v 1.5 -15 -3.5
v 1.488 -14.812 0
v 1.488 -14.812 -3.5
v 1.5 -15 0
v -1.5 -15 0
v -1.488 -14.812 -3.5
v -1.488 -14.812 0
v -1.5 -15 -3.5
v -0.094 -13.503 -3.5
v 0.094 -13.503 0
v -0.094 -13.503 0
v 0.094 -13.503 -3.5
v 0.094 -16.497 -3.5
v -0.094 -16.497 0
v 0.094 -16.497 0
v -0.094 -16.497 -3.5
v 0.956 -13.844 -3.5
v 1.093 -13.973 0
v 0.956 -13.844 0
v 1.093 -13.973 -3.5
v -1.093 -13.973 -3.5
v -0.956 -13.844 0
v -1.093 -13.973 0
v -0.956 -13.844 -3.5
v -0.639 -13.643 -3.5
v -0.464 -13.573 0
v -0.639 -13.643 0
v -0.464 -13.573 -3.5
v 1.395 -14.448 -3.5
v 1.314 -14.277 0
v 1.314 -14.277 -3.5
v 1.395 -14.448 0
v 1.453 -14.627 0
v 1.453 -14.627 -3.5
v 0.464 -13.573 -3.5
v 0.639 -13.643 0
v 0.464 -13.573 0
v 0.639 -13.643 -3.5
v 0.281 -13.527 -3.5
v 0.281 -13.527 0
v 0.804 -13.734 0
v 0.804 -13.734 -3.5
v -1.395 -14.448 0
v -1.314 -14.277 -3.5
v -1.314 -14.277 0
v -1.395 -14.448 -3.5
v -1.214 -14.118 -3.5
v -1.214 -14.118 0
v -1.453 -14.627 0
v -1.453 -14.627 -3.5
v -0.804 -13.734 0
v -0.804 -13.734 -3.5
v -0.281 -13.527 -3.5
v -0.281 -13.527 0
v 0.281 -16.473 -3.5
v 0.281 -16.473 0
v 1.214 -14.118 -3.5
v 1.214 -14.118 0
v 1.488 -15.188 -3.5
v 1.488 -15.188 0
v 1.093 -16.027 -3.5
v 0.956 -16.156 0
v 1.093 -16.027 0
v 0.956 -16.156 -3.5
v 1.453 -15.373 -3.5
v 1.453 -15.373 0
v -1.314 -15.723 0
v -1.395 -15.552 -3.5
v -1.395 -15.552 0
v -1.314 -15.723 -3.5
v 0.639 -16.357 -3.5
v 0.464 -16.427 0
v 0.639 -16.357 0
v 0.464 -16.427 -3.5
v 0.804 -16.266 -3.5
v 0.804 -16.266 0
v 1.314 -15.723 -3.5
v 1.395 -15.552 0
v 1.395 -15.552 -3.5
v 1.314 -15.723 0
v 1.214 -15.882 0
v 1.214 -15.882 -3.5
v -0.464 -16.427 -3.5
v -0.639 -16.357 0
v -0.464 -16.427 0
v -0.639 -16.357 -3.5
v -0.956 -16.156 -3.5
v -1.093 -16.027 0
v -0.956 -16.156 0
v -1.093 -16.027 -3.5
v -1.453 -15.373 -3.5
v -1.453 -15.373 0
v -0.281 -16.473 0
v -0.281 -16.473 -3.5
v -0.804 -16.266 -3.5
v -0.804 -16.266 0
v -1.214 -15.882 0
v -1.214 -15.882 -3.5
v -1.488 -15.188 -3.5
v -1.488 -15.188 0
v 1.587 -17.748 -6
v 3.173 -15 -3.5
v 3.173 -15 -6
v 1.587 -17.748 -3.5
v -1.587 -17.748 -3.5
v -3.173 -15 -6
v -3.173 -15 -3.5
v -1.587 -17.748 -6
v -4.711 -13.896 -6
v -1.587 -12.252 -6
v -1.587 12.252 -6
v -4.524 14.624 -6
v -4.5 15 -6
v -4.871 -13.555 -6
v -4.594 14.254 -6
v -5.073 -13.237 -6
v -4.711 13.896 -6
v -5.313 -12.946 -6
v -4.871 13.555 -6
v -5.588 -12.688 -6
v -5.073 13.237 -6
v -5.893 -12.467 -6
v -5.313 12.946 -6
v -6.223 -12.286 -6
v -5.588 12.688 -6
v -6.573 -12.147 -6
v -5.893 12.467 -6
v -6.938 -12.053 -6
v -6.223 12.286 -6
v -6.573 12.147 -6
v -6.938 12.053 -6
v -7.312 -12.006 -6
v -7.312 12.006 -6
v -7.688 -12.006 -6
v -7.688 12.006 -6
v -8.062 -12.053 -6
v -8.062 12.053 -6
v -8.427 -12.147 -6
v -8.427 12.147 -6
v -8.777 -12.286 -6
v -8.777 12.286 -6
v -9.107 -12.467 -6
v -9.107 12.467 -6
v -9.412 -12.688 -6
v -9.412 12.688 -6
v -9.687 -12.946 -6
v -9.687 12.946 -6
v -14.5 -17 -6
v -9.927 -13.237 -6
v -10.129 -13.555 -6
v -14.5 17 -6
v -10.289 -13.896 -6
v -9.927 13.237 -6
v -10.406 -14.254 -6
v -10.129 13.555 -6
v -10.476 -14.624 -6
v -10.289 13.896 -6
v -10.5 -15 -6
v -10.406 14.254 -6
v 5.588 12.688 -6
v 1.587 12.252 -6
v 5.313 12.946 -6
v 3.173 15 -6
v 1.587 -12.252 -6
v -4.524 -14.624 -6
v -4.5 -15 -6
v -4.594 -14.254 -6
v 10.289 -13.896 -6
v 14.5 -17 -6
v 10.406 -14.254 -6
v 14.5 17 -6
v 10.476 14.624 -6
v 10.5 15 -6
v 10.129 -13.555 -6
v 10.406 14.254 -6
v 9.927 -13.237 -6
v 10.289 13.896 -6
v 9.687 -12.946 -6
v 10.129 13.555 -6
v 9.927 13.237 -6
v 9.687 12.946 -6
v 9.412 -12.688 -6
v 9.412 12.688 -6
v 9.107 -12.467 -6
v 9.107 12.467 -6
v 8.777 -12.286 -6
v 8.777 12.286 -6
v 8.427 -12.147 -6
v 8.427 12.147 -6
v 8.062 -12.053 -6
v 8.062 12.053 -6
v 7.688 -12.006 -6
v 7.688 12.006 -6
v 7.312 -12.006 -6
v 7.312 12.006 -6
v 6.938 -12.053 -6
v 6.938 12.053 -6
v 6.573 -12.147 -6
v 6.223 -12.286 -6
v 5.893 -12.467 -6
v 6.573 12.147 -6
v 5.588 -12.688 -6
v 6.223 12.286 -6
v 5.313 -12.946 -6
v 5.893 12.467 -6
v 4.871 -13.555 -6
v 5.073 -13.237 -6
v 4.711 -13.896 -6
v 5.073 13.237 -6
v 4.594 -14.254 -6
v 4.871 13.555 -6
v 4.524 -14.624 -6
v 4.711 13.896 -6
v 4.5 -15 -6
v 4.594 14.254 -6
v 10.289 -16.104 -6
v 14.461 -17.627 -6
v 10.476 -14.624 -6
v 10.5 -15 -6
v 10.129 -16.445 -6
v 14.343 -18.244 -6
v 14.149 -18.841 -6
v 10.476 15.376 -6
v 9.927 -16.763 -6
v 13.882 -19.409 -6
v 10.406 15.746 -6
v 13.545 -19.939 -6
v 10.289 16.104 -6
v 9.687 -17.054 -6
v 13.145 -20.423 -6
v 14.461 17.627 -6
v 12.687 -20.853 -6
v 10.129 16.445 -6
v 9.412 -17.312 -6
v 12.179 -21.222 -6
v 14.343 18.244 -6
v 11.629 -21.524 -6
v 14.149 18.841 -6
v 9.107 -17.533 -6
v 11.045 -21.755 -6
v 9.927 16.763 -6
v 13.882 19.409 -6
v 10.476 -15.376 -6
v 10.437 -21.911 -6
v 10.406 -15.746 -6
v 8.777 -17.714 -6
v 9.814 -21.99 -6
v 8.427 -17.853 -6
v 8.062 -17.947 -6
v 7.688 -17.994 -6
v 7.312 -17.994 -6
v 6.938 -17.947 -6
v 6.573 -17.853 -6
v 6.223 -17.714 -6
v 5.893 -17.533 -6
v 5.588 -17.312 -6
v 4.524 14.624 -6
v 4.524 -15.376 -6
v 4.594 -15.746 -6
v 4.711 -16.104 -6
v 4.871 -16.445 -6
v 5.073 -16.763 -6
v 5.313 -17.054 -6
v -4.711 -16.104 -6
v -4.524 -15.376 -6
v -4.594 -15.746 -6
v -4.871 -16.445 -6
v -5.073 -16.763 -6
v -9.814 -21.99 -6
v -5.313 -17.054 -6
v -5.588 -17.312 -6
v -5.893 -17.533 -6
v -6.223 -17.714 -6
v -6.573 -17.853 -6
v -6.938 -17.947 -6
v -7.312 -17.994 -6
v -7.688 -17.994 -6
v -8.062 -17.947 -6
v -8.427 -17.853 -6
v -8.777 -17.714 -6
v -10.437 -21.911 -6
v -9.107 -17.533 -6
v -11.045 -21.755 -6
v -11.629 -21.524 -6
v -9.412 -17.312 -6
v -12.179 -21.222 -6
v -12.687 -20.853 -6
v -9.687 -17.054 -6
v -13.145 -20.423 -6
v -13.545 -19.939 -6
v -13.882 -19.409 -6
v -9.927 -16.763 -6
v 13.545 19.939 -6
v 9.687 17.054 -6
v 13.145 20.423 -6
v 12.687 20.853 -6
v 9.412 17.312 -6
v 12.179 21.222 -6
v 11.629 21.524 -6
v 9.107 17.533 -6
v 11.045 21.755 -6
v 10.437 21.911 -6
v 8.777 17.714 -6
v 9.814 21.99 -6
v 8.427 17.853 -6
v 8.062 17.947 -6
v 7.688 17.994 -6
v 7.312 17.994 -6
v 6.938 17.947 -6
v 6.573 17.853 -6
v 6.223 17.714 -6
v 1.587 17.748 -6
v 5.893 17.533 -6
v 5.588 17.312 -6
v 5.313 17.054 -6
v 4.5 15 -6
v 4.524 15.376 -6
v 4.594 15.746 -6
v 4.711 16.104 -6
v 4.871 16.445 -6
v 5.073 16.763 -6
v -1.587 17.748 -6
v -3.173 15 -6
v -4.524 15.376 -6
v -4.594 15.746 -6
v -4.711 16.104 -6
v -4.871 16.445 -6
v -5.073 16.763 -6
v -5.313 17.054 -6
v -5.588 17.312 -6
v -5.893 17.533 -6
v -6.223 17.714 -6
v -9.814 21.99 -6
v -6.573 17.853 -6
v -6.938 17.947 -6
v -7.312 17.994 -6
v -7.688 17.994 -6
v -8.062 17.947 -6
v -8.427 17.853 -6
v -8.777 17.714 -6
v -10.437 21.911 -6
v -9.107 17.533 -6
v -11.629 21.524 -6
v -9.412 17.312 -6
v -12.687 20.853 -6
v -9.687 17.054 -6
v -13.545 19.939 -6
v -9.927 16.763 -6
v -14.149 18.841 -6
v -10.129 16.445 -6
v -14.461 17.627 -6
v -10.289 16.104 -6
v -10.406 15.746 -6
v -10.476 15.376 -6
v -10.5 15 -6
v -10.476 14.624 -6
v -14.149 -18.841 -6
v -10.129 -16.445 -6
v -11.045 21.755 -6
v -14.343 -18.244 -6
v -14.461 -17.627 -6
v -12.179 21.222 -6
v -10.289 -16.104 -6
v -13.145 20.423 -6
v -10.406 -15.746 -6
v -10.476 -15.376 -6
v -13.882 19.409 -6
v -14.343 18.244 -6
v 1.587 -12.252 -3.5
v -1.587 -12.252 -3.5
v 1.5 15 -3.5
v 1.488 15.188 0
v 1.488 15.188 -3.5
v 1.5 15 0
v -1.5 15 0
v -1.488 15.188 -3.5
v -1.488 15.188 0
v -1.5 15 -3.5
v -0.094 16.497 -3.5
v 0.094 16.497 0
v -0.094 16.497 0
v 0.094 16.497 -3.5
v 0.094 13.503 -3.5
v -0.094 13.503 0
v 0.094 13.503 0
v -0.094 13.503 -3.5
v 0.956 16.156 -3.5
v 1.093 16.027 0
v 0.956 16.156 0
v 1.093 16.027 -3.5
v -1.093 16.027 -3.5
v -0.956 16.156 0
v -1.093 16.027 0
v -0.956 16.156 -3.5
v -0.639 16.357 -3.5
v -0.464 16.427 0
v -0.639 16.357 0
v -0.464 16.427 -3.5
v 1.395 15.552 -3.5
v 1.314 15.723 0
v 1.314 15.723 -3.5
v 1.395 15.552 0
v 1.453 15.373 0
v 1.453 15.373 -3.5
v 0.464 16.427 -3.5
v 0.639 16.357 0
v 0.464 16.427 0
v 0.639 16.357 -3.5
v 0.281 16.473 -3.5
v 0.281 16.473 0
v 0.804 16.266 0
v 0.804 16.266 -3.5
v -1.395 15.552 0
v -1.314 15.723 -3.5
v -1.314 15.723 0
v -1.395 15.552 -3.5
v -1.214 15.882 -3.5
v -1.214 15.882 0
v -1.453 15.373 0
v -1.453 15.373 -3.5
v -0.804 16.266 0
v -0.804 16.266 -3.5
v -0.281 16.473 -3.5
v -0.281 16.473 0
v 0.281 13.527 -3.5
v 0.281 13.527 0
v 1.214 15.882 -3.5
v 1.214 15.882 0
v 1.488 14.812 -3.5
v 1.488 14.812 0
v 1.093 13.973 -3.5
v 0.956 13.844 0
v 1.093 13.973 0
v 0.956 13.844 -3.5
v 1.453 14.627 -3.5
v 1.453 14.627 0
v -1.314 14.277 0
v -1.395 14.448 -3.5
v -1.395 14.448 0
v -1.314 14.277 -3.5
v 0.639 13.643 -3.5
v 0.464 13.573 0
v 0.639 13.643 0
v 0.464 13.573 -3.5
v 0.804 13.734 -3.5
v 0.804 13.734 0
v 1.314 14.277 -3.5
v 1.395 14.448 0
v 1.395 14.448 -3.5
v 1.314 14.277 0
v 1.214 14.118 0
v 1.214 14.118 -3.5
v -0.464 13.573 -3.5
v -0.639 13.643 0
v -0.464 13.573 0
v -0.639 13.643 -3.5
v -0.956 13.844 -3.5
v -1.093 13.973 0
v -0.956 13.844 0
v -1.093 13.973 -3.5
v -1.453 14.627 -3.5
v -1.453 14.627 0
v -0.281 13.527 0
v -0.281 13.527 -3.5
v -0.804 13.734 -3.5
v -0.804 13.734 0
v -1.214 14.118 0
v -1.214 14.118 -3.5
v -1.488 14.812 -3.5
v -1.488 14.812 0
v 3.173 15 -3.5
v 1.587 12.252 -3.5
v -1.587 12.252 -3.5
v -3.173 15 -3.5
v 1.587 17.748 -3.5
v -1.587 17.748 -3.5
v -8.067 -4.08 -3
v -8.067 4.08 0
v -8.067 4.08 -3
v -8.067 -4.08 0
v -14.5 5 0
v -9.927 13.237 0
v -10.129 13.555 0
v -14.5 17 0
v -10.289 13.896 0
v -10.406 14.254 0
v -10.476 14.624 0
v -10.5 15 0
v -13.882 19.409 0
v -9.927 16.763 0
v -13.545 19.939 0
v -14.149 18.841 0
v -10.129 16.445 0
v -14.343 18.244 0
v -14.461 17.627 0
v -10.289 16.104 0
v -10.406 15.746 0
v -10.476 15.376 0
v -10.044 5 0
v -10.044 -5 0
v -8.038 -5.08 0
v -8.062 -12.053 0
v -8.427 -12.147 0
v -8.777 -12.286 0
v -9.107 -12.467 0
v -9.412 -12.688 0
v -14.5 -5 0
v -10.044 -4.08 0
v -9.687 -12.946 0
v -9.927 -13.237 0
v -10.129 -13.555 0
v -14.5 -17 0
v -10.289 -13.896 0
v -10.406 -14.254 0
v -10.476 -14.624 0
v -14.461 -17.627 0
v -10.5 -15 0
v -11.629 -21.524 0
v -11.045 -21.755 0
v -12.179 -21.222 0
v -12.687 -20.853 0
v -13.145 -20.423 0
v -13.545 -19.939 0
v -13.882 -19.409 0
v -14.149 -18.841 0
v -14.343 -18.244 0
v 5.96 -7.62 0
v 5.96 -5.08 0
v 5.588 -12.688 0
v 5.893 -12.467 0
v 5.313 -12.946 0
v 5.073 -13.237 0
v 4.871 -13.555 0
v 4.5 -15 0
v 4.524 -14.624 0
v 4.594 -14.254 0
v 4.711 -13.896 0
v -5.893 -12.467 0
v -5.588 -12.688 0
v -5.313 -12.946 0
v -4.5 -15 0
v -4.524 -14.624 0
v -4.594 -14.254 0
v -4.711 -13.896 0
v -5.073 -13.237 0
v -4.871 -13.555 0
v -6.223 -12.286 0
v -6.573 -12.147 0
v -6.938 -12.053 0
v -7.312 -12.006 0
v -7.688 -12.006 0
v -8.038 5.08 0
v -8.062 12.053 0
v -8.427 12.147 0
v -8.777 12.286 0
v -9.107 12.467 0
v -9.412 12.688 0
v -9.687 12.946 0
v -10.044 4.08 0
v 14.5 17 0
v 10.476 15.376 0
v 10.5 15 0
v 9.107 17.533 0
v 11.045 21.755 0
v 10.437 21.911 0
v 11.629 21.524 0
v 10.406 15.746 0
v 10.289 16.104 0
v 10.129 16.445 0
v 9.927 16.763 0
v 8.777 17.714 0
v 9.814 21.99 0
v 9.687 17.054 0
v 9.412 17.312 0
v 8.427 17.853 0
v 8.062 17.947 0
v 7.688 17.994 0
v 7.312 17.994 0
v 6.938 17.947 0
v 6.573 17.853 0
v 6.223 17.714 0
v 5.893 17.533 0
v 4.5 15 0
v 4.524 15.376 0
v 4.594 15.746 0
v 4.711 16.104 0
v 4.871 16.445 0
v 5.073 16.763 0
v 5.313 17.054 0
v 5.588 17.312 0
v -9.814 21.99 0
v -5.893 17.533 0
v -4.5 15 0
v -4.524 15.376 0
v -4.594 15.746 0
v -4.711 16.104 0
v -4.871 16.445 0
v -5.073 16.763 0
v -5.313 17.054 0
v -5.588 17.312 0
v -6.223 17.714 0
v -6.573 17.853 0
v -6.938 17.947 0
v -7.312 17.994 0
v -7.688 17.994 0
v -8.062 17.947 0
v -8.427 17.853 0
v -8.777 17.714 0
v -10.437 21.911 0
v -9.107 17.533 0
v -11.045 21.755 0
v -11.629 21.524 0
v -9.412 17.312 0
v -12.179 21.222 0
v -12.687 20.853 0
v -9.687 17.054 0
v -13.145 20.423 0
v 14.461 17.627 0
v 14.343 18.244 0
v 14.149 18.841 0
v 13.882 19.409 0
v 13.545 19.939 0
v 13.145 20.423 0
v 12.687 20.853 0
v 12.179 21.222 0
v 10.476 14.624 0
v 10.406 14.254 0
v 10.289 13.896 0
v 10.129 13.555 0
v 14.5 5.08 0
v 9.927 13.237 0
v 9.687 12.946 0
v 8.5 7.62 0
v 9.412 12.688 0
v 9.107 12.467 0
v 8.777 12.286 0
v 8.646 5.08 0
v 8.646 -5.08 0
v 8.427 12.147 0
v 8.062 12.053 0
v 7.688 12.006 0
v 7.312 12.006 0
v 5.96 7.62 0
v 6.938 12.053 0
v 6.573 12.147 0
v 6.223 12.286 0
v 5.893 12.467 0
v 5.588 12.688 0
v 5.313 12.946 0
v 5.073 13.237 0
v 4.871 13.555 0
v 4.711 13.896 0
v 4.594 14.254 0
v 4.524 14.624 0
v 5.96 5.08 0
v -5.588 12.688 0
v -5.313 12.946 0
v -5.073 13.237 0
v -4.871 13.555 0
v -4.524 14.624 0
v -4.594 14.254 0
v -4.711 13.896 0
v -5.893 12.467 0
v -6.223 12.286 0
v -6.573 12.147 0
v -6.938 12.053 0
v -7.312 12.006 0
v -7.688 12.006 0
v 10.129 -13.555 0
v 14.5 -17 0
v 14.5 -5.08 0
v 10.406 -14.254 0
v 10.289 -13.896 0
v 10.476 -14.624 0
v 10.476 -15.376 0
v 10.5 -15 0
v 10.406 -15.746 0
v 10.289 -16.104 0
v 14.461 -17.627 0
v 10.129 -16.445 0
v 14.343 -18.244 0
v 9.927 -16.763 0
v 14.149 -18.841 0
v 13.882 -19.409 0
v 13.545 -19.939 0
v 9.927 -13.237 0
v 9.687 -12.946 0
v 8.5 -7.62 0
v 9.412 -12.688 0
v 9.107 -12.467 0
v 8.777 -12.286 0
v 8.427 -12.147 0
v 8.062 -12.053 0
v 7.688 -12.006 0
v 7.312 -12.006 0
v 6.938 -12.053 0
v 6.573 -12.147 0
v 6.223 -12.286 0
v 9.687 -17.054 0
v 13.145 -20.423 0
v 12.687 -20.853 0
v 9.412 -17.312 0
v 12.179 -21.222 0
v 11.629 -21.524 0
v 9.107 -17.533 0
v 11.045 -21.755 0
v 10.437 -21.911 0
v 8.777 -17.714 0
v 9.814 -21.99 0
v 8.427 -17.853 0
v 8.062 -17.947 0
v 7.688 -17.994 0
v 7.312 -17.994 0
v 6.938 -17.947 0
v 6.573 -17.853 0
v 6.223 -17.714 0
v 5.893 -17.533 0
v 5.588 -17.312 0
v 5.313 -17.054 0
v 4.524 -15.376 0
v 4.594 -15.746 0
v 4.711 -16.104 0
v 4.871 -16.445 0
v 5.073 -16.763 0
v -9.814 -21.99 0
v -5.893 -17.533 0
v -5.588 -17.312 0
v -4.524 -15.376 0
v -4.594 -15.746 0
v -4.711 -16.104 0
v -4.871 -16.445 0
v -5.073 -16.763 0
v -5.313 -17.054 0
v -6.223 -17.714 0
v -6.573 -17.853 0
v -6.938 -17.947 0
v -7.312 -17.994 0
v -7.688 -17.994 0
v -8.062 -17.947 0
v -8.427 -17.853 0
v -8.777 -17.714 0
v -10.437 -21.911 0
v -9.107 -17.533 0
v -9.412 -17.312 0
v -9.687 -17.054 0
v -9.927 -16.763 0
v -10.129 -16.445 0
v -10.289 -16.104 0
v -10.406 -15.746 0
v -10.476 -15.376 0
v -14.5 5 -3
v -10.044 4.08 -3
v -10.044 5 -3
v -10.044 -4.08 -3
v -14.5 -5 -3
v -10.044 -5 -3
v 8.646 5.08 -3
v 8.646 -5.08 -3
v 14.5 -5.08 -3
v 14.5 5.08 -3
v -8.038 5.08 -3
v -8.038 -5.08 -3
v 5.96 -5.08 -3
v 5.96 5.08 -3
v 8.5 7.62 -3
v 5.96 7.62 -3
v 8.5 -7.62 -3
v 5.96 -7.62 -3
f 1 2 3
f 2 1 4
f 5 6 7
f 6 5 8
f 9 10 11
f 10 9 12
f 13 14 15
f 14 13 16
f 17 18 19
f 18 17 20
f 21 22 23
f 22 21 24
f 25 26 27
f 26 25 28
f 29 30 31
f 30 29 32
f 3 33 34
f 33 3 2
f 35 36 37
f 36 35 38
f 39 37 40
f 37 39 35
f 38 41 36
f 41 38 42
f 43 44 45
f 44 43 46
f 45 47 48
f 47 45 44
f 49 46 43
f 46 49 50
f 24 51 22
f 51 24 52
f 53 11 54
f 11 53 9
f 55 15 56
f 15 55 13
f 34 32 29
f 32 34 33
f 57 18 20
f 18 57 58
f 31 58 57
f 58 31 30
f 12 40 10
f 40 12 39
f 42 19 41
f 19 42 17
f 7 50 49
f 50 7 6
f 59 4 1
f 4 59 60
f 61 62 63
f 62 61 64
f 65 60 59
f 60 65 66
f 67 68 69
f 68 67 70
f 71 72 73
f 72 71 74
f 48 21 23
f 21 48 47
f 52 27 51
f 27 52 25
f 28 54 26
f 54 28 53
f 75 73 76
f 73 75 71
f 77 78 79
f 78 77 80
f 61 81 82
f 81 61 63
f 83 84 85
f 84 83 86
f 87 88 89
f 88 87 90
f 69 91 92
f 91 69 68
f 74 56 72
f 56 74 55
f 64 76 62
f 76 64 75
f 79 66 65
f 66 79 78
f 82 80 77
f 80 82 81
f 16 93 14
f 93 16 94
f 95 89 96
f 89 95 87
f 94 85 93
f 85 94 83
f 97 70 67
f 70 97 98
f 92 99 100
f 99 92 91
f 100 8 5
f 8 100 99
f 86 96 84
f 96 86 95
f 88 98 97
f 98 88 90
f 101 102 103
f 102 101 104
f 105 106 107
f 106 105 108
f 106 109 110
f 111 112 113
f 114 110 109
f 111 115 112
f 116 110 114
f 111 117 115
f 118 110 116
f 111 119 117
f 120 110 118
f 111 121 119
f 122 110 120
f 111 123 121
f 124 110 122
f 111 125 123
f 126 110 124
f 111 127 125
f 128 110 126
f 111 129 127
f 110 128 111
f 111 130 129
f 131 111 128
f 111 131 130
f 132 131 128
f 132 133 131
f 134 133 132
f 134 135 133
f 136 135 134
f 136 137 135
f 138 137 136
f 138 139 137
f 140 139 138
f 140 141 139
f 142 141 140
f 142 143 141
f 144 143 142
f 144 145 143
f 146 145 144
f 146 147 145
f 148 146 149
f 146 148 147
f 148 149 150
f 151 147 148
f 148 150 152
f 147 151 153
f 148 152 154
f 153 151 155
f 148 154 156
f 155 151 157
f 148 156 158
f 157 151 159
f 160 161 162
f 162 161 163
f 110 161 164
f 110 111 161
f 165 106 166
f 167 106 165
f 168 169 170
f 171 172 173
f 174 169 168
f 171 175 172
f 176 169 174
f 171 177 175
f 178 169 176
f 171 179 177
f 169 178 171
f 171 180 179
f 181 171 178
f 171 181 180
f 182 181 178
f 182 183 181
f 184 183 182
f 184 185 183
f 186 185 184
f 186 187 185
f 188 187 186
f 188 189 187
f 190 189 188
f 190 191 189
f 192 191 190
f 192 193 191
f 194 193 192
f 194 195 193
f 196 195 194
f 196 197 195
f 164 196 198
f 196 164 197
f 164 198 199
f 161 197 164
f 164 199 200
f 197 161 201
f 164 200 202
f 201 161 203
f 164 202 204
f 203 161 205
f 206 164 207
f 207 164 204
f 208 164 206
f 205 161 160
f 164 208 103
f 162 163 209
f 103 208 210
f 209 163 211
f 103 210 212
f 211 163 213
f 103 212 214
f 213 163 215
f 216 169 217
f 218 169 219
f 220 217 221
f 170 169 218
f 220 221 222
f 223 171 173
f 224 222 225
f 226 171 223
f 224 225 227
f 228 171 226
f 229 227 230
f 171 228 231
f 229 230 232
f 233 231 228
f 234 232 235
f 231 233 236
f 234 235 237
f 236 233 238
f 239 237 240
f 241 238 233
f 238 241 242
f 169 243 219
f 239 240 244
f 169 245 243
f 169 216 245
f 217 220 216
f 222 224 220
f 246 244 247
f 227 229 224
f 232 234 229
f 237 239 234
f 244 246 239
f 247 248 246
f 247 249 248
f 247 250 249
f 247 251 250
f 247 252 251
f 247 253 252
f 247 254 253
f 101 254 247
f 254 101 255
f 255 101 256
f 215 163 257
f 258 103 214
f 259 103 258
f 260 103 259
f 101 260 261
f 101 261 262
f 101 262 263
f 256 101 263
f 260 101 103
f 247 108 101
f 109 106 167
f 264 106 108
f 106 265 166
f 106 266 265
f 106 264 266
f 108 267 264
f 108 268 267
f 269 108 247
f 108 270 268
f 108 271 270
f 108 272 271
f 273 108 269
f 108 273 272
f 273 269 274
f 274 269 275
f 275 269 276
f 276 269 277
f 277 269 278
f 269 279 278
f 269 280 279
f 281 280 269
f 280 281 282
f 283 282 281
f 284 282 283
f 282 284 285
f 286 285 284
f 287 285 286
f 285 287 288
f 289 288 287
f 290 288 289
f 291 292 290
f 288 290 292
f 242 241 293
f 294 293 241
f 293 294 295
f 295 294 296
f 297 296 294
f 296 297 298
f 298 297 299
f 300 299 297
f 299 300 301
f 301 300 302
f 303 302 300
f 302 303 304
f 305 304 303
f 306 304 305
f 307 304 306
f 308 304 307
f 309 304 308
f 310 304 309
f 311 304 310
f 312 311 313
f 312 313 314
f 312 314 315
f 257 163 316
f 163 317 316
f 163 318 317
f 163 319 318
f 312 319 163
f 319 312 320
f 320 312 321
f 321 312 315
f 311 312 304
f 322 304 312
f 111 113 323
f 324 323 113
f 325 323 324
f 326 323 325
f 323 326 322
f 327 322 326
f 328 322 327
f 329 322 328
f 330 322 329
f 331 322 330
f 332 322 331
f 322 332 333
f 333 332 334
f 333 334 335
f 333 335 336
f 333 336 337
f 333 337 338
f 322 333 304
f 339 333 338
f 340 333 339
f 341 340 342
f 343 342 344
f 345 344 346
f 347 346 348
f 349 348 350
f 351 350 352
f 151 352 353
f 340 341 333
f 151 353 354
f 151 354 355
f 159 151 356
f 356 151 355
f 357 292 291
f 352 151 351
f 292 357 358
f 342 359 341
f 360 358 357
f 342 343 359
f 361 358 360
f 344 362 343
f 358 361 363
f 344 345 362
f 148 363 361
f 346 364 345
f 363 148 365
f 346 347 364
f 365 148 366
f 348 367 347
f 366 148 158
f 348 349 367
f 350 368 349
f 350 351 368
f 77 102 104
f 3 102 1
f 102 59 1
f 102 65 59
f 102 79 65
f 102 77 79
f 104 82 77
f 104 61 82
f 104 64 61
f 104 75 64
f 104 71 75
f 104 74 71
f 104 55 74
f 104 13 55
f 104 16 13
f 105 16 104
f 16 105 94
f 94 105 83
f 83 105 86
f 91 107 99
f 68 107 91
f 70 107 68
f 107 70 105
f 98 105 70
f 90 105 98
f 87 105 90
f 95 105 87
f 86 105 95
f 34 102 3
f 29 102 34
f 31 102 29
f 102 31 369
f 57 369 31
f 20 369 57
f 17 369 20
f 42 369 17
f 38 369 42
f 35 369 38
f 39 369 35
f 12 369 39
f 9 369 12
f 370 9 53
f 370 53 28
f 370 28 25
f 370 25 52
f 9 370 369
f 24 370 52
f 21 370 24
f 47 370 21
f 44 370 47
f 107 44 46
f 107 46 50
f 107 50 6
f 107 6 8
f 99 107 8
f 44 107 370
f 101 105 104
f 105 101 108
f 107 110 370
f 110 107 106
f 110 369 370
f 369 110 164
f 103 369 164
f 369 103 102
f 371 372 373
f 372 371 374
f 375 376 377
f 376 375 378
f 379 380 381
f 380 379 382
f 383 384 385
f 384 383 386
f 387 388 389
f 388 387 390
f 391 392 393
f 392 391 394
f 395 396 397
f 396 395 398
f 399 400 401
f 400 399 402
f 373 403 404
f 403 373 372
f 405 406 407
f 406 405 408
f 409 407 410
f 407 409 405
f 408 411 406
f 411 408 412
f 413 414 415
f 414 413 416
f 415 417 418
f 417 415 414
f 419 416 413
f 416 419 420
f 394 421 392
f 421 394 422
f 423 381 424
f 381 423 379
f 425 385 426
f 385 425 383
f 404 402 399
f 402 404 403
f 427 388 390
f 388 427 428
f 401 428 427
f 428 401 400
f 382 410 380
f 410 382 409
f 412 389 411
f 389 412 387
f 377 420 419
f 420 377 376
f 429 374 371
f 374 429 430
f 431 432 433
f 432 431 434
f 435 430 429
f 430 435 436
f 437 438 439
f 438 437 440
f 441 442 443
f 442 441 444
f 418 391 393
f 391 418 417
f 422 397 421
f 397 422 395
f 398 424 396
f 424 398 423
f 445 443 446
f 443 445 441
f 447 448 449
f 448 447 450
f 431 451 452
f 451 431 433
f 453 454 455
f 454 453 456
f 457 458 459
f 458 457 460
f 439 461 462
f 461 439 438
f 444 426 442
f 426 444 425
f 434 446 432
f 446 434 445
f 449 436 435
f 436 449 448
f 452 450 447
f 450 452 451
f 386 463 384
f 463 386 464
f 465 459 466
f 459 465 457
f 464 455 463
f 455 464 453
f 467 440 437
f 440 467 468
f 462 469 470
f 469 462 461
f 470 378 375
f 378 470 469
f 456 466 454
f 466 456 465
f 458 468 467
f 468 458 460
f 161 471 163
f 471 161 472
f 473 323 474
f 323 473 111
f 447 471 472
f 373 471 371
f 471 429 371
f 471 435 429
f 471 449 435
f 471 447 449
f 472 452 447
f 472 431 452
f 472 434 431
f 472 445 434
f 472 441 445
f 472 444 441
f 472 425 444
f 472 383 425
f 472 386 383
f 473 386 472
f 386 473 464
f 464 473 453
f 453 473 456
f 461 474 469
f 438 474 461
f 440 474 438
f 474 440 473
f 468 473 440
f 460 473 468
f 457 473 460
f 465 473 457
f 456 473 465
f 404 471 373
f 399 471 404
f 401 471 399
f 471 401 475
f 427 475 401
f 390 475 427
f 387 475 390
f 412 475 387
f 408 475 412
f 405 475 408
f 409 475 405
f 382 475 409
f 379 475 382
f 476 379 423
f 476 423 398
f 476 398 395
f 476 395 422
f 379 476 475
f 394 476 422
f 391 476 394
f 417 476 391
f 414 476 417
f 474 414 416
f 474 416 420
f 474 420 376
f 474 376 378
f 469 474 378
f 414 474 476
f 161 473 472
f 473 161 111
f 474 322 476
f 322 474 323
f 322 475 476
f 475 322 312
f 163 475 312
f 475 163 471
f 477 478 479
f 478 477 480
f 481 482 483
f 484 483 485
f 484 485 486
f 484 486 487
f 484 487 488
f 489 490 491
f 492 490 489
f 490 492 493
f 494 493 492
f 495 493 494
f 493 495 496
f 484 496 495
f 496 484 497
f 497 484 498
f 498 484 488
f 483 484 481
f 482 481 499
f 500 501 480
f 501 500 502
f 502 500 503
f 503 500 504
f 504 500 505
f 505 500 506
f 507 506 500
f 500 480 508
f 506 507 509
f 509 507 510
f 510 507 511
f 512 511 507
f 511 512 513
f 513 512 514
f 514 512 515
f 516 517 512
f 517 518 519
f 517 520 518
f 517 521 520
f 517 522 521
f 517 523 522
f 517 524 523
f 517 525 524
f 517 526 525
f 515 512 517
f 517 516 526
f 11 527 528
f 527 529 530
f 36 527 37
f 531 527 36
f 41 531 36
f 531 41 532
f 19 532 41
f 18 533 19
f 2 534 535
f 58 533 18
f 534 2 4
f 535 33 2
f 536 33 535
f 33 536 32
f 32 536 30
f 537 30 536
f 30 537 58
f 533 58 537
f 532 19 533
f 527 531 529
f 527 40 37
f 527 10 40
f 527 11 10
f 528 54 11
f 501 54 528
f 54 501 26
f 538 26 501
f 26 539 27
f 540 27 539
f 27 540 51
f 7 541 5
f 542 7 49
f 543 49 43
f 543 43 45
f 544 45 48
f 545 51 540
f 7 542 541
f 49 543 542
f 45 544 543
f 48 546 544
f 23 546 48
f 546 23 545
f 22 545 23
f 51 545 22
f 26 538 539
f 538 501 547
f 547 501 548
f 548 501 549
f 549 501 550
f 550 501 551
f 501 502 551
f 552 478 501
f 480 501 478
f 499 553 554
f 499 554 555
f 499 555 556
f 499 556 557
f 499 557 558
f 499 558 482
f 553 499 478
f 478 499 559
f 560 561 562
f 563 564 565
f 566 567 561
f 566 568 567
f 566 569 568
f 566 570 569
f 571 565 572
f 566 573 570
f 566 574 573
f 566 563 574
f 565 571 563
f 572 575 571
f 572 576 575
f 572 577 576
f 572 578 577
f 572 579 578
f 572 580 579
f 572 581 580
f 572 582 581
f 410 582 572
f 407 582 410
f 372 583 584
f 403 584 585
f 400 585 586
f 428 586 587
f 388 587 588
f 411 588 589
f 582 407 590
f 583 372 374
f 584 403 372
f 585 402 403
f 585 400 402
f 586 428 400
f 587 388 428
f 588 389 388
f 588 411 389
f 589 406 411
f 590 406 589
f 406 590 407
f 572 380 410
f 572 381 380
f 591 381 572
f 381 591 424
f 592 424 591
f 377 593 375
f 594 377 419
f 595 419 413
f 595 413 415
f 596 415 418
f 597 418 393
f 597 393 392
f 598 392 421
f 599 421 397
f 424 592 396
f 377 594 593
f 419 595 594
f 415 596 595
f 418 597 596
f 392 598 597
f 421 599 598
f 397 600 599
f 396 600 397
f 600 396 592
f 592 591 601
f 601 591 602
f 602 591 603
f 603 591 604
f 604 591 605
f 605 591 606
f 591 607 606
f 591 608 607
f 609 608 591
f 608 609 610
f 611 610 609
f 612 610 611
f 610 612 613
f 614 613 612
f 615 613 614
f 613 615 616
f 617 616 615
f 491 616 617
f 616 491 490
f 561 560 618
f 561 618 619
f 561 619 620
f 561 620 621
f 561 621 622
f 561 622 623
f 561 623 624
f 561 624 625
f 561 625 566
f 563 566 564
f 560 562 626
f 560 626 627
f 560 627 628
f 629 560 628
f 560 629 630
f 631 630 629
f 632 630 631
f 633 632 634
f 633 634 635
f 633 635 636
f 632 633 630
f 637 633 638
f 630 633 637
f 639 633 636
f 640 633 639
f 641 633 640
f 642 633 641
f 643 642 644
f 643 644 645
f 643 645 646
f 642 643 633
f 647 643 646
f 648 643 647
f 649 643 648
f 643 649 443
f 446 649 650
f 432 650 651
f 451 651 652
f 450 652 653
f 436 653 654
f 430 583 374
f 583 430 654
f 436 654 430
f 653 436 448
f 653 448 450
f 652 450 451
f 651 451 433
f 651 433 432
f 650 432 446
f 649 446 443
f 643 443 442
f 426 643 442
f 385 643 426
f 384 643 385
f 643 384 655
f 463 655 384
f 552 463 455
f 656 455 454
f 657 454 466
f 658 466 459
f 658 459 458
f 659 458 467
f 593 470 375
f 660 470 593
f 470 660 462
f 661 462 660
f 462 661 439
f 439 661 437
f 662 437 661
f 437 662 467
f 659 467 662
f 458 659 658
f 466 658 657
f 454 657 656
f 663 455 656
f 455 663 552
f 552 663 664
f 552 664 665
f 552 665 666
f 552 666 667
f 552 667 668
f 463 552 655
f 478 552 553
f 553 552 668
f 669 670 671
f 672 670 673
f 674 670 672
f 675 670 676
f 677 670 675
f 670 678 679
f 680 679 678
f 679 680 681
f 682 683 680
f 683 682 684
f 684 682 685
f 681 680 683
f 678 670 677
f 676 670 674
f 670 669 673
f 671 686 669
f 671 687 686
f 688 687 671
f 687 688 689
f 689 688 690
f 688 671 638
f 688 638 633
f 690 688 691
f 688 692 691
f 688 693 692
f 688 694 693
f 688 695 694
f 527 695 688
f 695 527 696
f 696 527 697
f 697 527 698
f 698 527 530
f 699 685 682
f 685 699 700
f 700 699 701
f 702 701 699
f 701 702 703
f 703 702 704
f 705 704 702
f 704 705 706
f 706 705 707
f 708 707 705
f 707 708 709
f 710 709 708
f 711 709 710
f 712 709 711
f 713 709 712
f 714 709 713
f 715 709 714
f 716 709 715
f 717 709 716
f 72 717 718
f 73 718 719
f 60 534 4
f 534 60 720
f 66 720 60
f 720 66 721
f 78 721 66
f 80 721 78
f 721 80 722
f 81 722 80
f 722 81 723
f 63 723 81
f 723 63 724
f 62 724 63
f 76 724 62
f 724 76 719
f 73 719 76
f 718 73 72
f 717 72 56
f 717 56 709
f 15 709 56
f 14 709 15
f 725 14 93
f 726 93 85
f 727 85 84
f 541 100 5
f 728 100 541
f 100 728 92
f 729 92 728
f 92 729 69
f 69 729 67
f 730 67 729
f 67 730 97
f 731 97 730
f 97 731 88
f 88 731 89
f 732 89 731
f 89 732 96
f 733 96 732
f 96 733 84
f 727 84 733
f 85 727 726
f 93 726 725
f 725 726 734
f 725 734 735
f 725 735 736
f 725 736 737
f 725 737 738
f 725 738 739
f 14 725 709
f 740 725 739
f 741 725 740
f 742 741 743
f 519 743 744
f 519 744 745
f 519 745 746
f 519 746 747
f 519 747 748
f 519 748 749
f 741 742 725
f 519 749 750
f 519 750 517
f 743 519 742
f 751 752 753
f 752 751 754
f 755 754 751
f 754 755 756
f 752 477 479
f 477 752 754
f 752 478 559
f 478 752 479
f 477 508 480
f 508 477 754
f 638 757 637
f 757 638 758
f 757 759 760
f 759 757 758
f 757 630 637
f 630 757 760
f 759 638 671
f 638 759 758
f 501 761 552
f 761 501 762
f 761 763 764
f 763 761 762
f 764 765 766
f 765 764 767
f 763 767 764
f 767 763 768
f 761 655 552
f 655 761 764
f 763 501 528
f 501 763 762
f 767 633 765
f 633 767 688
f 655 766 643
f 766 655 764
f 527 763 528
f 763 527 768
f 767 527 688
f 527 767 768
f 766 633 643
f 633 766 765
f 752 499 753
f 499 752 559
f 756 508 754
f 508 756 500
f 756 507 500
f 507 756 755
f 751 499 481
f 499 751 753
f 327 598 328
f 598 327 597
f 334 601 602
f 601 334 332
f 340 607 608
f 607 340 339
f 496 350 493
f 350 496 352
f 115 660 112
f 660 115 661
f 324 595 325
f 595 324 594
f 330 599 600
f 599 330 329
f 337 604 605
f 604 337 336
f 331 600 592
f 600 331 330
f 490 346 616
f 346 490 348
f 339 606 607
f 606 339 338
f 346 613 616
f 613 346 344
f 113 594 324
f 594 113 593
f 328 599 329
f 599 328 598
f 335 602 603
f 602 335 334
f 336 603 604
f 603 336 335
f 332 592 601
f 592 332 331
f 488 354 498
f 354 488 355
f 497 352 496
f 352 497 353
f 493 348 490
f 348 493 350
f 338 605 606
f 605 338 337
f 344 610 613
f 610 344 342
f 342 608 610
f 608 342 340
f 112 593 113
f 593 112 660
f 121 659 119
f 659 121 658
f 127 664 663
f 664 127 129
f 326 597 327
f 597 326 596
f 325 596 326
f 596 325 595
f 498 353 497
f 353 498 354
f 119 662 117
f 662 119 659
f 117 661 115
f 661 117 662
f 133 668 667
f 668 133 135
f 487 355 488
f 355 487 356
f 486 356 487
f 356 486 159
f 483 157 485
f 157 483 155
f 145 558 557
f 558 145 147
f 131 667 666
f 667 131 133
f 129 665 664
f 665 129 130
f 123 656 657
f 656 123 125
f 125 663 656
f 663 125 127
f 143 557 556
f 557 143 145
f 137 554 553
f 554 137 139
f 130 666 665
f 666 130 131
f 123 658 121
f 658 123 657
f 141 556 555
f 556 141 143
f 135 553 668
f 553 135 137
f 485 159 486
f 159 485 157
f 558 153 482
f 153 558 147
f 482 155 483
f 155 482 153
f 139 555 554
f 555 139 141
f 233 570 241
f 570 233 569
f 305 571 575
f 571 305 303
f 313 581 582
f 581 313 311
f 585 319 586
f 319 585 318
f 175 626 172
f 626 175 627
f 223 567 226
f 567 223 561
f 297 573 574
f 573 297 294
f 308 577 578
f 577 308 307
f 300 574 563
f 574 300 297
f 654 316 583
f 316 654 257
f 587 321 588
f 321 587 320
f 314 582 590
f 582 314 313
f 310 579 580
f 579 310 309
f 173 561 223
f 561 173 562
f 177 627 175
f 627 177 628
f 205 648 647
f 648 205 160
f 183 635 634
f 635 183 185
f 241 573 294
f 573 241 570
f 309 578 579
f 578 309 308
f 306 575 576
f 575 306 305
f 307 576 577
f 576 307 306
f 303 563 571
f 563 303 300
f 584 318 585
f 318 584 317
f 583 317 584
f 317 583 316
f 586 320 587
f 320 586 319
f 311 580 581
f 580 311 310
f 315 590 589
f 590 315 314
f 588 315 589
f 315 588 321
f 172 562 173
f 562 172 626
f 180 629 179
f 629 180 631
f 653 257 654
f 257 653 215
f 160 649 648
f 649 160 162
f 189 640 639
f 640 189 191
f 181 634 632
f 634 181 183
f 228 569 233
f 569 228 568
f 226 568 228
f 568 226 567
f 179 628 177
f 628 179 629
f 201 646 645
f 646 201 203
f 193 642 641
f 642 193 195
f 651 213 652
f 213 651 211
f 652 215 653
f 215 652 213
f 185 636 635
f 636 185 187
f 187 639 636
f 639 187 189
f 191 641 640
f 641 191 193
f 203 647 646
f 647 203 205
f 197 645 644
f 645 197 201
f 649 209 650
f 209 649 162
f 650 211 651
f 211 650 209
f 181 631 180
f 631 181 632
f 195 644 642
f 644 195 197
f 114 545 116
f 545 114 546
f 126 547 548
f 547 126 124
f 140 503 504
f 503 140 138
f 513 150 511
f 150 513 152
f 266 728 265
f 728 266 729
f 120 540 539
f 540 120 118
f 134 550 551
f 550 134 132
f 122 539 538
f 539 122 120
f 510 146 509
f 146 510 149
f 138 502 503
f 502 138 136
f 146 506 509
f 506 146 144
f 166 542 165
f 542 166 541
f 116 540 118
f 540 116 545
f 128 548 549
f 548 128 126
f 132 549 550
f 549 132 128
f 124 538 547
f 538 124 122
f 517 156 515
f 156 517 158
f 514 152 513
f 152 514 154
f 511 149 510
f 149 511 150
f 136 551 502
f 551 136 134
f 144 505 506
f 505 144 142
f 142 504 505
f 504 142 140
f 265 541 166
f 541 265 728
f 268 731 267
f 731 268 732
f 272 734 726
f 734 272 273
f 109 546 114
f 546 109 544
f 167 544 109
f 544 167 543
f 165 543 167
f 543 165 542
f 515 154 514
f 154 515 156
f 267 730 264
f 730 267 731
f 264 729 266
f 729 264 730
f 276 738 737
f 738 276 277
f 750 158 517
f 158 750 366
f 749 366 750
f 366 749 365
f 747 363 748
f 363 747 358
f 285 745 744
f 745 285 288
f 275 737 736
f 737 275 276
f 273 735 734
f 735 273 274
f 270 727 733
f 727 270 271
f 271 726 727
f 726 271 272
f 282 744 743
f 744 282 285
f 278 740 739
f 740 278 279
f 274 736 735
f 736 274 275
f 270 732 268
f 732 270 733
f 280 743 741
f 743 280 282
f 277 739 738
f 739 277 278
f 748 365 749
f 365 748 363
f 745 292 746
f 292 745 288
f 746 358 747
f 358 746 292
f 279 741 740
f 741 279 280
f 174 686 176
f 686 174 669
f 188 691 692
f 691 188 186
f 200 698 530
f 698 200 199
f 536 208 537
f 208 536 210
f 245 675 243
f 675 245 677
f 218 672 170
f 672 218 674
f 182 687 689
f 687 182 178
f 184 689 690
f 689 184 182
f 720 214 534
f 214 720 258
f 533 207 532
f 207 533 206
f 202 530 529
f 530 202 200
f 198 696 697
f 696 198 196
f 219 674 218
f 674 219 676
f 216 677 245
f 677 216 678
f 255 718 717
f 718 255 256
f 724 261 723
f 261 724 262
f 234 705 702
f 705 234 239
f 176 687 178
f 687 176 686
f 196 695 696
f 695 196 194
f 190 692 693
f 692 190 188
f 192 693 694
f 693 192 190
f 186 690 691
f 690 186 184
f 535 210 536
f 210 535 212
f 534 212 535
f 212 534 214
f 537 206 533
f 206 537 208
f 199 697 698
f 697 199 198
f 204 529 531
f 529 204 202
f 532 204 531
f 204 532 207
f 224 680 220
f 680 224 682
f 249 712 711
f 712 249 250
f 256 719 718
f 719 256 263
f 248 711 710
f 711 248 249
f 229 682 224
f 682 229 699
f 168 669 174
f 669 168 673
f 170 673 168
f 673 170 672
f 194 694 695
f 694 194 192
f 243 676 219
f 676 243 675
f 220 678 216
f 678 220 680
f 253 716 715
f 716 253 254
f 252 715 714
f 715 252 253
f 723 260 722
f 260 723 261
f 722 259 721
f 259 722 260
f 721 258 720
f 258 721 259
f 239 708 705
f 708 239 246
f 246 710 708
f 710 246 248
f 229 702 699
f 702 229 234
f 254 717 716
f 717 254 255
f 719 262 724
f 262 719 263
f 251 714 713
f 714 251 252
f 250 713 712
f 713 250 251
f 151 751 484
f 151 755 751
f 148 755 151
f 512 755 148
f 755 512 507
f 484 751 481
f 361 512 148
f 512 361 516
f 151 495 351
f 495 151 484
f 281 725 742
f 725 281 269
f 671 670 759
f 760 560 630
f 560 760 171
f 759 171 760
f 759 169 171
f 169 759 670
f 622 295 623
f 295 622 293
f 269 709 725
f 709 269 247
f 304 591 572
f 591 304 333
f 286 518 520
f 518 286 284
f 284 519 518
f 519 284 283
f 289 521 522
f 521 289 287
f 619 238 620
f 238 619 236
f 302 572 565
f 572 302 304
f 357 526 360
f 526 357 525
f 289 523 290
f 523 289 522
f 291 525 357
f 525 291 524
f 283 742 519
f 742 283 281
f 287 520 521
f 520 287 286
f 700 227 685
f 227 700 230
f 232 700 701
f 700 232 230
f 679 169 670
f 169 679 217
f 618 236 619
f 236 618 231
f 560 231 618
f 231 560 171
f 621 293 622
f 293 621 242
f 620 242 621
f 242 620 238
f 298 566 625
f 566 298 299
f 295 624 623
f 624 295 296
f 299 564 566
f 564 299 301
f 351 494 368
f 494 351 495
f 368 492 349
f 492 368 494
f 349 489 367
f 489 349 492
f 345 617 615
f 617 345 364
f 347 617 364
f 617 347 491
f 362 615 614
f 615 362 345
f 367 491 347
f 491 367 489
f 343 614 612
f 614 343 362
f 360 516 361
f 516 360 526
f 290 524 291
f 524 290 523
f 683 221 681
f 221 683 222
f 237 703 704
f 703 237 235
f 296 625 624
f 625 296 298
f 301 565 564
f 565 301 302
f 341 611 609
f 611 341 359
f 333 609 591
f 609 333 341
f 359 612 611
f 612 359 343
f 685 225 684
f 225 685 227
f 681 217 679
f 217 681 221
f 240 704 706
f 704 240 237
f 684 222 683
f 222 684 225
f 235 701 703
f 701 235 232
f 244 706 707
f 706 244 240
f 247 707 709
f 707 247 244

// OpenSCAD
$fn = 50;


difference() {
	union() {
		translate(v = [0, 0, -6]) {
			hull() {
				translate(v = [-9.5000000000, 17.0000000000, 0]) {
					cylinder(h = 6, r = 5);
				}
				translate(v = [9.5000000000, 17.0000000000, 0]) {
					cylinder(h = 6, r = 5);
				}
				translate(v = [-9.5000000000, -17.0000000000, 0]) {
					cylinder(h = 6, r = 5);
				}
				translate(v = [9.5000000000, -17.0000000000, 0]) {
					cylinder(h = 6, r = 5);
				}
			}
		}
	}
	union() {
		translate(v = [0, -15, -6]) {
			rotate(a = [0, 0, 0]) {
				difference() {
					union() {
						translate(v = [0, 0, -50.0000000000]) {
							cylinder(h = 100, r = 1.5000000000);
						}
						translate(v = [0, 0, -50.0000000000]) {
							cylinder(h = 100, r = 1.5000000000);
						}
						linear_extrude(height = 2.5000000000) {
							polygon(points = [[3.1735000000, 0.0000000000], [1.5867500000, 2.7483316189], [-1.5867500000, 2.7483316189], [-3.1735000000, 0.0000000000], [-1.5867500000, -2.7483316189], [1.5867500000, -2.7483316189]]);
						}
						translate(v = [0, 0, -50.0000000000]) {
							cylinder(h = 100, r = 1.5000000000);
						}
					}
					union();
				}
			}
		}
		translate(v = [0, 15, -6]) {
			rotate(a = [0, 0, 0]) {
				difference() {
					union() {
						translate(v = [0, 0, -50.0000000000]) {
							cylinder(h = 100, r = 1.5000000000);
						}
						translate(v = [0, 0, -50.0000000000]) {
							cylinder(h = 100, r = 1.5000000000);
						}
						linear_extrude(height = 2.5000000000) {
							polygon(points = [[3.1735000000, 0.0000000000], [1.5867500000, 2.7483316189], [-1.5867500000, 2.7483316189], [-3.1735000000, 0.0000000000], [-1.5867500000, -2.7483316189], [1.5867500000, -2.7483316189]]);
						}
						translate(v = [0, 0, -50.0000000000]) {
							cylinder(h = 100, r = 1.5000000000);
						}
					}
					union();
				}
			}
		}
		translate(v = [15.0000000000, 0, -3]) {
			rotate(a = [0, 0, 180]) {
				difference() {
					union() {
						#translate(v = [23.0670000000, -4.0800000000, 0]) {
							cube(size = [5, 8.1600000000, 3]);
						}
						#translate(v = [0.3540000000, -5.0800000000, 0]) {
							cube(size = [6, 10.1600000000, 3]);
						}
						#translate(v = [9.0380000000, -5.0800000000, 0]) {
							cube(size = [14, 10.1600000000, 3]);
						}
						#translate(v = [6.5000000000, -7.6200000000, 0]) {
							cube(size = [2.5400000000, 15.2400000000, 3]);
						}
						#translate(v = [25.0440000000, -5.0000000000, 0]) {
							cube(size = [7, 10, 3]);
						}
					}
					union();
				}
			}
		}
		translate(v = [-7.5000000000, 15.0000000000, -50.0000000000]) {
			cylinder(h = 100, r = 3.0000000000);
		}
		translate(v = [7.5000000000, 15.0000000000, -50.0000000000]) {
			cylinder(h = 100, r = 3.0000000000);
		}
		translate(v = [-7.5000000000, -15.0000000000, -50.0000000000]) {
			cylinder(h = 100, r = 3.0000000000);
		}
		translate(v = [7.5000000000, -15.0000000000, -50.0000000000]) {
			cylinder(h = 100, r = 3.0000000000);
		}
	}
}
